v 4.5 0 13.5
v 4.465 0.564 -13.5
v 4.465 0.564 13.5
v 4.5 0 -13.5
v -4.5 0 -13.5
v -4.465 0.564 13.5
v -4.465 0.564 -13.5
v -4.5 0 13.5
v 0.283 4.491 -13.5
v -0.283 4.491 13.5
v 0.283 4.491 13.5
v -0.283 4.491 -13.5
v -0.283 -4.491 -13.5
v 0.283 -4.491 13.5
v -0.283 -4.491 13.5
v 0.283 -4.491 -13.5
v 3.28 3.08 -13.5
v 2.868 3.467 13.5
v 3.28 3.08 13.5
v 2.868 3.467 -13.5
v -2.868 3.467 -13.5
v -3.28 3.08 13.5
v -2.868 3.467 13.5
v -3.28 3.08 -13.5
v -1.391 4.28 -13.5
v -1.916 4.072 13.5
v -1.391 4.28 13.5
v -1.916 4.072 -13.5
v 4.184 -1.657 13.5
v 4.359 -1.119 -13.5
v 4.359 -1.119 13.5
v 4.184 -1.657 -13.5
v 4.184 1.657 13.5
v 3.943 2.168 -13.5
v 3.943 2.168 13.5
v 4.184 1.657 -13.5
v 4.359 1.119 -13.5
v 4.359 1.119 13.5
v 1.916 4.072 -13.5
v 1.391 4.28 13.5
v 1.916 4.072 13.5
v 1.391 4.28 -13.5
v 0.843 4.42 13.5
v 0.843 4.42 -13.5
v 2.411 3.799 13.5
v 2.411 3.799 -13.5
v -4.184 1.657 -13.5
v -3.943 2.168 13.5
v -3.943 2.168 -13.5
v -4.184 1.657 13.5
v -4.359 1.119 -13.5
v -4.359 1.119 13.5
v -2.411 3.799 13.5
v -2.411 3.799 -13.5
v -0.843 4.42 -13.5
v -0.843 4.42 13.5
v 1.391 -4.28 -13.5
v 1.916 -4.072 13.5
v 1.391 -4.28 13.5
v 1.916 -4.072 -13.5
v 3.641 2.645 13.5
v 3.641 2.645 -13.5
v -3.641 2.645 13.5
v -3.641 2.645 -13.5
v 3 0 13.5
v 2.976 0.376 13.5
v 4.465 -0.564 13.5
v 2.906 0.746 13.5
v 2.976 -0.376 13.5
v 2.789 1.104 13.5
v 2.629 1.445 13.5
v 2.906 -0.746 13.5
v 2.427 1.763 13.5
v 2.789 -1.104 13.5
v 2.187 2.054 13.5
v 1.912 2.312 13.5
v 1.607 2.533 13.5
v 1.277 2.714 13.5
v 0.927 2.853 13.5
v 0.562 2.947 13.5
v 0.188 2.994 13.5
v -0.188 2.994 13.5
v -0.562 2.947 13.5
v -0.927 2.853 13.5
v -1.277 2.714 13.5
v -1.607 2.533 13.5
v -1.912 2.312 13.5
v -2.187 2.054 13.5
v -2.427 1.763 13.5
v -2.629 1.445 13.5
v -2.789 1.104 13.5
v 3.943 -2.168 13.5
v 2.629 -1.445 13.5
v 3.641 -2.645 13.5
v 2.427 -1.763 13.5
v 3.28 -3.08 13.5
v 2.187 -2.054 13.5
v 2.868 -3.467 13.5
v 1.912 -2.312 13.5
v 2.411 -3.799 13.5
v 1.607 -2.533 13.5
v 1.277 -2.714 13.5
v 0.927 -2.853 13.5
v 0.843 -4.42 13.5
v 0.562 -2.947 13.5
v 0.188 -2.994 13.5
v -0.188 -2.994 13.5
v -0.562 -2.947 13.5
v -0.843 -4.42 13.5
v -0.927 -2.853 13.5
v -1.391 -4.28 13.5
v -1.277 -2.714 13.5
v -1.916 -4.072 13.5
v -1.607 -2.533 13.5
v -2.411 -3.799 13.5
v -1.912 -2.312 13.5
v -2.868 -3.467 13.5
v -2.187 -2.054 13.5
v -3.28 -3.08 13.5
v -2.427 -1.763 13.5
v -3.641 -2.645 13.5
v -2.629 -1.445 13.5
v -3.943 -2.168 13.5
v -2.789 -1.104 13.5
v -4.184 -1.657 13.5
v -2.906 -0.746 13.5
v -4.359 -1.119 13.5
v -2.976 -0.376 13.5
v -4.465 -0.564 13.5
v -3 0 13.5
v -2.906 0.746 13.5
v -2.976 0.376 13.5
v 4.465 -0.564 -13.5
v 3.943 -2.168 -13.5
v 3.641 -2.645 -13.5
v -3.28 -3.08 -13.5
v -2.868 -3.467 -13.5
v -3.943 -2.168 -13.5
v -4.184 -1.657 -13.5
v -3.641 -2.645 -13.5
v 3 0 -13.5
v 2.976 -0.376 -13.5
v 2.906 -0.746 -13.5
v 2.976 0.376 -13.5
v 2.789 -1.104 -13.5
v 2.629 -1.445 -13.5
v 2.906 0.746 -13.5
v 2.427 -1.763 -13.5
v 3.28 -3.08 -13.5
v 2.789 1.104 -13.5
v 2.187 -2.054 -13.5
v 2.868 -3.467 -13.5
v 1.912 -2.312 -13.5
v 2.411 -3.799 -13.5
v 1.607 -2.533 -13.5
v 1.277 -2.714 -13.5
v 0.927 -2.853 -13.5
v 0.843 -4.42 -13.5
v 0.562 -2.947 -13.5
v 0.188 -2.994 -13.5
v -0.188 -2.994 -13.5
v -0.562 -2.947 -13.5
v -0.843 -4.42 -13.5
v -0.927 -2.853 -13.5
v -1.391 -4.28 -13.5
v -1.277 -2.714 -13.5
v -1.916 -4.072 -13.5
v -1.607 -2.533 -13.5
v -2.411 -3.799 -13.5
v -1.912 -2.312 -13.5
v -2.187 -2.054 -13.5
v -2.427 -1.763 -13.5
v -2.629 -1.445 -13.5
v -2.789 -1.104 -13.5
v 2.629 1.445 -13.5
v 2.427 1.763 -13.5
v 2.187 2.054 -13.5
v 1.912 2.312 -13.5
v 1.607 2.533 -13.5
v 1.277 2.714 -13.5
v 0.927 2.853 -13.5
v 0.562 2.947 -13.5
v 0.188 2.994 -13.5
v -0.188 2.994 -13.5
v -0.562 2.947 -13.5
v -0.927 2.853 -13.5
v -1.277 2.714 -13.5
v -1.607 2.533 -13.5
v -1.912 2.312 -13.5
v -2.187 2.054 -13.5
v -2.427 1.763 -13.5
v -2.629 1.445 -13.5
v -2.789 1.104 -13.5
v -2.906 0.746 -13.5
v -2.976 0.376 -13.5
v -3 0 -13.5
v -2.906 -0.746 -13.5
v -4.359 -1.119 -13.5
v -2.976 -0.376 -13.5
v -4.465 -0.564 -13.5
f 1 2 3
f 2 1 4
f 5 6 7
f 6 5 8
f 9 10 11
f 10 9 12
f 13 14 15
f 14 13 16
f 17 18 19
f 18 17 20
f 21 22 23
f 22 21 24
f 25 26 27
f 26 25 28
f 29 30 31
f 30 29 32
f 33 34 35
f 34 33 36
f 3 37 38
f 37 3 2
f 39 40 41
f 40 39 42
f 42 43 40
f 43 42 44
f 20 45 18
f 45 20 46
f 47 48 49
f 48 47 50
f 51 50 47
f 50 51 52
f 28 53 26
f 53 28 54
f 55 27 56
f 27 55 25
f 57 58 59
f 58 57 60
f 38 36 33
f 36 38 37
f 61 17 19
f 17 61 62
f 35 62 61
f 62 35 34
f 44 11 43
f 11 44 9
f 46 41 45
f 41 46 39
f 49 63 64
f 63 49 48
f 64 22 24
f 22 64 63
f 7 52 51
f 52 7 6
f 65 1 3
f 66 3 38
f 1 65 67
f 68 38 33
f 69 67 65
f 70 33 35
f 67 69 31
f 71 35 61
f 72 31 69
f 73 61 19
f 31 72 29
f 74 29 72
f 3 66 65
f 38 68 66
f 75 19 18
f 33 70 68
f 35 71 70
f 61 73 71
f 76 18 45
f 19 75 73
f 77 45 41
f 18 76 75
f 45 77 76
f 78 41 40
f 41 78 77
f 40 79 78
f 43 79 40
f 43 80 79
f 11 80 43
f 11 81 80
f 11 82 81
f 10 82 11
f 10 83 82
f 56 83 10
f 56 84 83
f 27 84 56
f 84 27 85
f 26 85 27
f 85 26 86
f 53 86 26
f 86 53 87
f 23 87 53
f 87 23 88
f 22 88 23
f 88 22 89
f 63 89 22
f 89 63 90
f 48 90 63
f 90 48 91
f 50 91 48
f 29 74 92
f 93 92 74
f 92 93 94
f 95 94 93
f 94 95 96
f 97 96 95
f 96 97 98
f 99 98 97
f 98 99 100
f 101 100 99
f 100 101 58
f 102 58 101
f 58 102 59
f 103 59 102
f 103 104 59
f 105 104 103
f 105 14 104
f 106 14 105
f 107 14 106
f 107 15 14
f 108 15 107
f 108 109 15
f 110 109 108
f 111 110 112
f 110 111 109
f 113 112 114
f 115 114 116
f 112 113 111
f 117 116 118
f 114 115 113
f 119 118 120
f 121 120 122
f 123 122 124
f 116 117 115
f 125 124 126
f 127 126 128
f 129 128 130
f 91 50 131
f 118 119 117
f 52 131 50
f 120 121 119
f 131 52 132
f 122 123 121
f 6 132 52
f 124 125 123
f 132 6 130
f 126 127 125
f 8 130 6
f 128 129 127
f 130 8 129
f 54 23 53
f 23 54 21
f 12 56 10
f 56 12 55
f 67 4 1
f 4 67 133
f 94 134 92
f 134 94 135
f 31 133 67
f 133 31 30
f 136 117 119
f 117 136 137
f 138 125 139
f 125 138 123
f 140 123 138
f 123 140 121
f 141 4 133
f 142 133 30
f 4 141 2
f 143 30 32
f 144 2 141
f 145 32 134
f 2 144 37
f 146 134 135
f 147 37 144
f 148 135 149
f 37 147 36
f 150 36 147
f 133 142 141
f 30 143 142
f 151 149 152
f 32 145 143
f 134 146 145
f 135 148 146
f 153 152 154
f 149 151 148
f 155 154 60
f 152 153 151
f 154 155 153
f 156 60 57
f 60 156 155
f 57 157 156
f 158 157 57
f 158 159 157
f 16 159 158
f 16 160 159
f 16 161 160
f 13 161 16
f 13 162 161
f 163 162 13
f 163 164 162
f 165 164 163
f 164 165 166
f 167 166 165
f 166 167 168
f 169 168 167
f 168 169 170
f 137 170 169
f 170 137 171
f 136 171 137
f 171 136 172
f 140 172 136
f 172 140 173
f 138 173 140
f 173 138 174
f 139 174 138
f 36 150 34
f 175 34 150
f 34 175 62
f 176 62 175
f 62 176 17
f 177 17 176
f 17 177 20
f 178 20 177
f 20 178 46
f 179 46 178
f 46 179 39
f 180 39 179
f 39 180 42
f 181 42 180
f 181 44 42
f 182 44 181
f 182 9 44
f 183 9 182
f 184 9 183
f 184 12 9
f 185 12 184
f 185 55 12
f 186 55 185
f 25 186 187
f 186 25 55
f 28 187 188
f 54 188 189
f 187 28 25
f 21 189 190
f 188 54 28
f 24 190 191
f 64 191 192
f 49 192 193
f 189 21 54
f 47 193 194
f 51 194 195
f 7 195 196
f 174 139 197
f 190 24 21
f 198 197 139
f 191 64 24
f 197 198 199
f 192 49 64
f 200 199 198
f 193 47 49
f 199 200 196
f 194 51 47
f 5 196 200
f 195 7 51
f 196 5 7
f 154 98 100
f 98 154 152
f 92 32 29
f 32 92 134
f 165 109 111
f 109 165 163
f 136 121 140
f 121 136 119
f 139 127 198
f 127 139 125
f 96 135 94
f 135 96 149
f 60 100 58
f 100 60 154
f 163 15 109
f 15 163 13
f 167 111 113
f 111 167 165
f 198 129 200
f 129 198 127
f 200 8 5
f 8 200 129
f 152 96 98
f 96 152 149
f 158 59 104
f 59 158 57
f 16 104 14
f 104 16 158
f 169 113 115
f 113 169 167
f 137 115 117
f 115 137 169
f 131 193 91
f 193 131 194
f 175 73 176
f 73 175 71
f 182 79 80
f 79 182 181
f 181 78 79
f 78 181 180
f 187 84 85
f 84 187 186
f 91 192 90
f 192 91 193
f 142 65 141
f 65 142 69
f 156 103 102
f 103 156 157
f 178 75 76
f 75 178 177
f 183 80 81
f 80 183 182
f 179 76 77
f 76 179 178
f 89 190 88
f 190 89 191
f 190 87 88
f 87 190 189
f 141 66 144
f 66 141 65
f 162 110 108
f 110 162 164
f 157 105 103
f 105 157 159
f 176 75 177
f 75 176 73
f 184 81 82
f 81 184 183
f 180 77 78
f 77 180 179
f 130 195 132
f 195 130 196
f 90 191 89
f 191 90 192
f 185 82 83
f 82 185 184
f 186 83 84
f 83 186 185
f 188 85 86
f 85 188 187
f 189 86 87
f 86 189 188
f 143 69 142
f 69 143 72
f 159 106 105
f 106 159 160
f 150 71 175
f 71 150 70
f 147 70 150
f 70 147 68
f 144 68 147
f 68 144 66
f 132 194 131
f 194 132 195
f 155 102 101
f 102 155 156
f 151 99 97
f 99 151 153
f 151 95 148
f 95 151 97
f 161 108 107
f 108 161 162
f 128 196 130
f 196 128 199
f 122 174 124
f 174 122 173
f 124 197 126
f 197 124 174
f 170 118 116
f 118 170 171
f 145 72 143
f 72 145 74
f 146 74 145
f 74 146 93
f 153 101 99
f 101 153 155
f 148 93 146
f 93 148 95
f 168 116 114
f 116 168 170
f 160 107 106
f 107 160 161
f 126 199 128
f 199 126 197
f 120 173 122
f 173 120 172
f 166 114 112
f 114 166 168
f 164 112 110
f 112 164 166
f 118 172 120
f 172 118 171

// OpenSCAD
$fn = 50;


difference() {
	union() {
		translate(v = [0, 0, -13.5000000000]) {
			cylinder(h = 27, r = 4.5000000000);
		}
	}
	union() {
		translate(v = [0, 0, -100.0000000000]) {
			cylinder(h = 200, r = 3);
		}
	}
}
